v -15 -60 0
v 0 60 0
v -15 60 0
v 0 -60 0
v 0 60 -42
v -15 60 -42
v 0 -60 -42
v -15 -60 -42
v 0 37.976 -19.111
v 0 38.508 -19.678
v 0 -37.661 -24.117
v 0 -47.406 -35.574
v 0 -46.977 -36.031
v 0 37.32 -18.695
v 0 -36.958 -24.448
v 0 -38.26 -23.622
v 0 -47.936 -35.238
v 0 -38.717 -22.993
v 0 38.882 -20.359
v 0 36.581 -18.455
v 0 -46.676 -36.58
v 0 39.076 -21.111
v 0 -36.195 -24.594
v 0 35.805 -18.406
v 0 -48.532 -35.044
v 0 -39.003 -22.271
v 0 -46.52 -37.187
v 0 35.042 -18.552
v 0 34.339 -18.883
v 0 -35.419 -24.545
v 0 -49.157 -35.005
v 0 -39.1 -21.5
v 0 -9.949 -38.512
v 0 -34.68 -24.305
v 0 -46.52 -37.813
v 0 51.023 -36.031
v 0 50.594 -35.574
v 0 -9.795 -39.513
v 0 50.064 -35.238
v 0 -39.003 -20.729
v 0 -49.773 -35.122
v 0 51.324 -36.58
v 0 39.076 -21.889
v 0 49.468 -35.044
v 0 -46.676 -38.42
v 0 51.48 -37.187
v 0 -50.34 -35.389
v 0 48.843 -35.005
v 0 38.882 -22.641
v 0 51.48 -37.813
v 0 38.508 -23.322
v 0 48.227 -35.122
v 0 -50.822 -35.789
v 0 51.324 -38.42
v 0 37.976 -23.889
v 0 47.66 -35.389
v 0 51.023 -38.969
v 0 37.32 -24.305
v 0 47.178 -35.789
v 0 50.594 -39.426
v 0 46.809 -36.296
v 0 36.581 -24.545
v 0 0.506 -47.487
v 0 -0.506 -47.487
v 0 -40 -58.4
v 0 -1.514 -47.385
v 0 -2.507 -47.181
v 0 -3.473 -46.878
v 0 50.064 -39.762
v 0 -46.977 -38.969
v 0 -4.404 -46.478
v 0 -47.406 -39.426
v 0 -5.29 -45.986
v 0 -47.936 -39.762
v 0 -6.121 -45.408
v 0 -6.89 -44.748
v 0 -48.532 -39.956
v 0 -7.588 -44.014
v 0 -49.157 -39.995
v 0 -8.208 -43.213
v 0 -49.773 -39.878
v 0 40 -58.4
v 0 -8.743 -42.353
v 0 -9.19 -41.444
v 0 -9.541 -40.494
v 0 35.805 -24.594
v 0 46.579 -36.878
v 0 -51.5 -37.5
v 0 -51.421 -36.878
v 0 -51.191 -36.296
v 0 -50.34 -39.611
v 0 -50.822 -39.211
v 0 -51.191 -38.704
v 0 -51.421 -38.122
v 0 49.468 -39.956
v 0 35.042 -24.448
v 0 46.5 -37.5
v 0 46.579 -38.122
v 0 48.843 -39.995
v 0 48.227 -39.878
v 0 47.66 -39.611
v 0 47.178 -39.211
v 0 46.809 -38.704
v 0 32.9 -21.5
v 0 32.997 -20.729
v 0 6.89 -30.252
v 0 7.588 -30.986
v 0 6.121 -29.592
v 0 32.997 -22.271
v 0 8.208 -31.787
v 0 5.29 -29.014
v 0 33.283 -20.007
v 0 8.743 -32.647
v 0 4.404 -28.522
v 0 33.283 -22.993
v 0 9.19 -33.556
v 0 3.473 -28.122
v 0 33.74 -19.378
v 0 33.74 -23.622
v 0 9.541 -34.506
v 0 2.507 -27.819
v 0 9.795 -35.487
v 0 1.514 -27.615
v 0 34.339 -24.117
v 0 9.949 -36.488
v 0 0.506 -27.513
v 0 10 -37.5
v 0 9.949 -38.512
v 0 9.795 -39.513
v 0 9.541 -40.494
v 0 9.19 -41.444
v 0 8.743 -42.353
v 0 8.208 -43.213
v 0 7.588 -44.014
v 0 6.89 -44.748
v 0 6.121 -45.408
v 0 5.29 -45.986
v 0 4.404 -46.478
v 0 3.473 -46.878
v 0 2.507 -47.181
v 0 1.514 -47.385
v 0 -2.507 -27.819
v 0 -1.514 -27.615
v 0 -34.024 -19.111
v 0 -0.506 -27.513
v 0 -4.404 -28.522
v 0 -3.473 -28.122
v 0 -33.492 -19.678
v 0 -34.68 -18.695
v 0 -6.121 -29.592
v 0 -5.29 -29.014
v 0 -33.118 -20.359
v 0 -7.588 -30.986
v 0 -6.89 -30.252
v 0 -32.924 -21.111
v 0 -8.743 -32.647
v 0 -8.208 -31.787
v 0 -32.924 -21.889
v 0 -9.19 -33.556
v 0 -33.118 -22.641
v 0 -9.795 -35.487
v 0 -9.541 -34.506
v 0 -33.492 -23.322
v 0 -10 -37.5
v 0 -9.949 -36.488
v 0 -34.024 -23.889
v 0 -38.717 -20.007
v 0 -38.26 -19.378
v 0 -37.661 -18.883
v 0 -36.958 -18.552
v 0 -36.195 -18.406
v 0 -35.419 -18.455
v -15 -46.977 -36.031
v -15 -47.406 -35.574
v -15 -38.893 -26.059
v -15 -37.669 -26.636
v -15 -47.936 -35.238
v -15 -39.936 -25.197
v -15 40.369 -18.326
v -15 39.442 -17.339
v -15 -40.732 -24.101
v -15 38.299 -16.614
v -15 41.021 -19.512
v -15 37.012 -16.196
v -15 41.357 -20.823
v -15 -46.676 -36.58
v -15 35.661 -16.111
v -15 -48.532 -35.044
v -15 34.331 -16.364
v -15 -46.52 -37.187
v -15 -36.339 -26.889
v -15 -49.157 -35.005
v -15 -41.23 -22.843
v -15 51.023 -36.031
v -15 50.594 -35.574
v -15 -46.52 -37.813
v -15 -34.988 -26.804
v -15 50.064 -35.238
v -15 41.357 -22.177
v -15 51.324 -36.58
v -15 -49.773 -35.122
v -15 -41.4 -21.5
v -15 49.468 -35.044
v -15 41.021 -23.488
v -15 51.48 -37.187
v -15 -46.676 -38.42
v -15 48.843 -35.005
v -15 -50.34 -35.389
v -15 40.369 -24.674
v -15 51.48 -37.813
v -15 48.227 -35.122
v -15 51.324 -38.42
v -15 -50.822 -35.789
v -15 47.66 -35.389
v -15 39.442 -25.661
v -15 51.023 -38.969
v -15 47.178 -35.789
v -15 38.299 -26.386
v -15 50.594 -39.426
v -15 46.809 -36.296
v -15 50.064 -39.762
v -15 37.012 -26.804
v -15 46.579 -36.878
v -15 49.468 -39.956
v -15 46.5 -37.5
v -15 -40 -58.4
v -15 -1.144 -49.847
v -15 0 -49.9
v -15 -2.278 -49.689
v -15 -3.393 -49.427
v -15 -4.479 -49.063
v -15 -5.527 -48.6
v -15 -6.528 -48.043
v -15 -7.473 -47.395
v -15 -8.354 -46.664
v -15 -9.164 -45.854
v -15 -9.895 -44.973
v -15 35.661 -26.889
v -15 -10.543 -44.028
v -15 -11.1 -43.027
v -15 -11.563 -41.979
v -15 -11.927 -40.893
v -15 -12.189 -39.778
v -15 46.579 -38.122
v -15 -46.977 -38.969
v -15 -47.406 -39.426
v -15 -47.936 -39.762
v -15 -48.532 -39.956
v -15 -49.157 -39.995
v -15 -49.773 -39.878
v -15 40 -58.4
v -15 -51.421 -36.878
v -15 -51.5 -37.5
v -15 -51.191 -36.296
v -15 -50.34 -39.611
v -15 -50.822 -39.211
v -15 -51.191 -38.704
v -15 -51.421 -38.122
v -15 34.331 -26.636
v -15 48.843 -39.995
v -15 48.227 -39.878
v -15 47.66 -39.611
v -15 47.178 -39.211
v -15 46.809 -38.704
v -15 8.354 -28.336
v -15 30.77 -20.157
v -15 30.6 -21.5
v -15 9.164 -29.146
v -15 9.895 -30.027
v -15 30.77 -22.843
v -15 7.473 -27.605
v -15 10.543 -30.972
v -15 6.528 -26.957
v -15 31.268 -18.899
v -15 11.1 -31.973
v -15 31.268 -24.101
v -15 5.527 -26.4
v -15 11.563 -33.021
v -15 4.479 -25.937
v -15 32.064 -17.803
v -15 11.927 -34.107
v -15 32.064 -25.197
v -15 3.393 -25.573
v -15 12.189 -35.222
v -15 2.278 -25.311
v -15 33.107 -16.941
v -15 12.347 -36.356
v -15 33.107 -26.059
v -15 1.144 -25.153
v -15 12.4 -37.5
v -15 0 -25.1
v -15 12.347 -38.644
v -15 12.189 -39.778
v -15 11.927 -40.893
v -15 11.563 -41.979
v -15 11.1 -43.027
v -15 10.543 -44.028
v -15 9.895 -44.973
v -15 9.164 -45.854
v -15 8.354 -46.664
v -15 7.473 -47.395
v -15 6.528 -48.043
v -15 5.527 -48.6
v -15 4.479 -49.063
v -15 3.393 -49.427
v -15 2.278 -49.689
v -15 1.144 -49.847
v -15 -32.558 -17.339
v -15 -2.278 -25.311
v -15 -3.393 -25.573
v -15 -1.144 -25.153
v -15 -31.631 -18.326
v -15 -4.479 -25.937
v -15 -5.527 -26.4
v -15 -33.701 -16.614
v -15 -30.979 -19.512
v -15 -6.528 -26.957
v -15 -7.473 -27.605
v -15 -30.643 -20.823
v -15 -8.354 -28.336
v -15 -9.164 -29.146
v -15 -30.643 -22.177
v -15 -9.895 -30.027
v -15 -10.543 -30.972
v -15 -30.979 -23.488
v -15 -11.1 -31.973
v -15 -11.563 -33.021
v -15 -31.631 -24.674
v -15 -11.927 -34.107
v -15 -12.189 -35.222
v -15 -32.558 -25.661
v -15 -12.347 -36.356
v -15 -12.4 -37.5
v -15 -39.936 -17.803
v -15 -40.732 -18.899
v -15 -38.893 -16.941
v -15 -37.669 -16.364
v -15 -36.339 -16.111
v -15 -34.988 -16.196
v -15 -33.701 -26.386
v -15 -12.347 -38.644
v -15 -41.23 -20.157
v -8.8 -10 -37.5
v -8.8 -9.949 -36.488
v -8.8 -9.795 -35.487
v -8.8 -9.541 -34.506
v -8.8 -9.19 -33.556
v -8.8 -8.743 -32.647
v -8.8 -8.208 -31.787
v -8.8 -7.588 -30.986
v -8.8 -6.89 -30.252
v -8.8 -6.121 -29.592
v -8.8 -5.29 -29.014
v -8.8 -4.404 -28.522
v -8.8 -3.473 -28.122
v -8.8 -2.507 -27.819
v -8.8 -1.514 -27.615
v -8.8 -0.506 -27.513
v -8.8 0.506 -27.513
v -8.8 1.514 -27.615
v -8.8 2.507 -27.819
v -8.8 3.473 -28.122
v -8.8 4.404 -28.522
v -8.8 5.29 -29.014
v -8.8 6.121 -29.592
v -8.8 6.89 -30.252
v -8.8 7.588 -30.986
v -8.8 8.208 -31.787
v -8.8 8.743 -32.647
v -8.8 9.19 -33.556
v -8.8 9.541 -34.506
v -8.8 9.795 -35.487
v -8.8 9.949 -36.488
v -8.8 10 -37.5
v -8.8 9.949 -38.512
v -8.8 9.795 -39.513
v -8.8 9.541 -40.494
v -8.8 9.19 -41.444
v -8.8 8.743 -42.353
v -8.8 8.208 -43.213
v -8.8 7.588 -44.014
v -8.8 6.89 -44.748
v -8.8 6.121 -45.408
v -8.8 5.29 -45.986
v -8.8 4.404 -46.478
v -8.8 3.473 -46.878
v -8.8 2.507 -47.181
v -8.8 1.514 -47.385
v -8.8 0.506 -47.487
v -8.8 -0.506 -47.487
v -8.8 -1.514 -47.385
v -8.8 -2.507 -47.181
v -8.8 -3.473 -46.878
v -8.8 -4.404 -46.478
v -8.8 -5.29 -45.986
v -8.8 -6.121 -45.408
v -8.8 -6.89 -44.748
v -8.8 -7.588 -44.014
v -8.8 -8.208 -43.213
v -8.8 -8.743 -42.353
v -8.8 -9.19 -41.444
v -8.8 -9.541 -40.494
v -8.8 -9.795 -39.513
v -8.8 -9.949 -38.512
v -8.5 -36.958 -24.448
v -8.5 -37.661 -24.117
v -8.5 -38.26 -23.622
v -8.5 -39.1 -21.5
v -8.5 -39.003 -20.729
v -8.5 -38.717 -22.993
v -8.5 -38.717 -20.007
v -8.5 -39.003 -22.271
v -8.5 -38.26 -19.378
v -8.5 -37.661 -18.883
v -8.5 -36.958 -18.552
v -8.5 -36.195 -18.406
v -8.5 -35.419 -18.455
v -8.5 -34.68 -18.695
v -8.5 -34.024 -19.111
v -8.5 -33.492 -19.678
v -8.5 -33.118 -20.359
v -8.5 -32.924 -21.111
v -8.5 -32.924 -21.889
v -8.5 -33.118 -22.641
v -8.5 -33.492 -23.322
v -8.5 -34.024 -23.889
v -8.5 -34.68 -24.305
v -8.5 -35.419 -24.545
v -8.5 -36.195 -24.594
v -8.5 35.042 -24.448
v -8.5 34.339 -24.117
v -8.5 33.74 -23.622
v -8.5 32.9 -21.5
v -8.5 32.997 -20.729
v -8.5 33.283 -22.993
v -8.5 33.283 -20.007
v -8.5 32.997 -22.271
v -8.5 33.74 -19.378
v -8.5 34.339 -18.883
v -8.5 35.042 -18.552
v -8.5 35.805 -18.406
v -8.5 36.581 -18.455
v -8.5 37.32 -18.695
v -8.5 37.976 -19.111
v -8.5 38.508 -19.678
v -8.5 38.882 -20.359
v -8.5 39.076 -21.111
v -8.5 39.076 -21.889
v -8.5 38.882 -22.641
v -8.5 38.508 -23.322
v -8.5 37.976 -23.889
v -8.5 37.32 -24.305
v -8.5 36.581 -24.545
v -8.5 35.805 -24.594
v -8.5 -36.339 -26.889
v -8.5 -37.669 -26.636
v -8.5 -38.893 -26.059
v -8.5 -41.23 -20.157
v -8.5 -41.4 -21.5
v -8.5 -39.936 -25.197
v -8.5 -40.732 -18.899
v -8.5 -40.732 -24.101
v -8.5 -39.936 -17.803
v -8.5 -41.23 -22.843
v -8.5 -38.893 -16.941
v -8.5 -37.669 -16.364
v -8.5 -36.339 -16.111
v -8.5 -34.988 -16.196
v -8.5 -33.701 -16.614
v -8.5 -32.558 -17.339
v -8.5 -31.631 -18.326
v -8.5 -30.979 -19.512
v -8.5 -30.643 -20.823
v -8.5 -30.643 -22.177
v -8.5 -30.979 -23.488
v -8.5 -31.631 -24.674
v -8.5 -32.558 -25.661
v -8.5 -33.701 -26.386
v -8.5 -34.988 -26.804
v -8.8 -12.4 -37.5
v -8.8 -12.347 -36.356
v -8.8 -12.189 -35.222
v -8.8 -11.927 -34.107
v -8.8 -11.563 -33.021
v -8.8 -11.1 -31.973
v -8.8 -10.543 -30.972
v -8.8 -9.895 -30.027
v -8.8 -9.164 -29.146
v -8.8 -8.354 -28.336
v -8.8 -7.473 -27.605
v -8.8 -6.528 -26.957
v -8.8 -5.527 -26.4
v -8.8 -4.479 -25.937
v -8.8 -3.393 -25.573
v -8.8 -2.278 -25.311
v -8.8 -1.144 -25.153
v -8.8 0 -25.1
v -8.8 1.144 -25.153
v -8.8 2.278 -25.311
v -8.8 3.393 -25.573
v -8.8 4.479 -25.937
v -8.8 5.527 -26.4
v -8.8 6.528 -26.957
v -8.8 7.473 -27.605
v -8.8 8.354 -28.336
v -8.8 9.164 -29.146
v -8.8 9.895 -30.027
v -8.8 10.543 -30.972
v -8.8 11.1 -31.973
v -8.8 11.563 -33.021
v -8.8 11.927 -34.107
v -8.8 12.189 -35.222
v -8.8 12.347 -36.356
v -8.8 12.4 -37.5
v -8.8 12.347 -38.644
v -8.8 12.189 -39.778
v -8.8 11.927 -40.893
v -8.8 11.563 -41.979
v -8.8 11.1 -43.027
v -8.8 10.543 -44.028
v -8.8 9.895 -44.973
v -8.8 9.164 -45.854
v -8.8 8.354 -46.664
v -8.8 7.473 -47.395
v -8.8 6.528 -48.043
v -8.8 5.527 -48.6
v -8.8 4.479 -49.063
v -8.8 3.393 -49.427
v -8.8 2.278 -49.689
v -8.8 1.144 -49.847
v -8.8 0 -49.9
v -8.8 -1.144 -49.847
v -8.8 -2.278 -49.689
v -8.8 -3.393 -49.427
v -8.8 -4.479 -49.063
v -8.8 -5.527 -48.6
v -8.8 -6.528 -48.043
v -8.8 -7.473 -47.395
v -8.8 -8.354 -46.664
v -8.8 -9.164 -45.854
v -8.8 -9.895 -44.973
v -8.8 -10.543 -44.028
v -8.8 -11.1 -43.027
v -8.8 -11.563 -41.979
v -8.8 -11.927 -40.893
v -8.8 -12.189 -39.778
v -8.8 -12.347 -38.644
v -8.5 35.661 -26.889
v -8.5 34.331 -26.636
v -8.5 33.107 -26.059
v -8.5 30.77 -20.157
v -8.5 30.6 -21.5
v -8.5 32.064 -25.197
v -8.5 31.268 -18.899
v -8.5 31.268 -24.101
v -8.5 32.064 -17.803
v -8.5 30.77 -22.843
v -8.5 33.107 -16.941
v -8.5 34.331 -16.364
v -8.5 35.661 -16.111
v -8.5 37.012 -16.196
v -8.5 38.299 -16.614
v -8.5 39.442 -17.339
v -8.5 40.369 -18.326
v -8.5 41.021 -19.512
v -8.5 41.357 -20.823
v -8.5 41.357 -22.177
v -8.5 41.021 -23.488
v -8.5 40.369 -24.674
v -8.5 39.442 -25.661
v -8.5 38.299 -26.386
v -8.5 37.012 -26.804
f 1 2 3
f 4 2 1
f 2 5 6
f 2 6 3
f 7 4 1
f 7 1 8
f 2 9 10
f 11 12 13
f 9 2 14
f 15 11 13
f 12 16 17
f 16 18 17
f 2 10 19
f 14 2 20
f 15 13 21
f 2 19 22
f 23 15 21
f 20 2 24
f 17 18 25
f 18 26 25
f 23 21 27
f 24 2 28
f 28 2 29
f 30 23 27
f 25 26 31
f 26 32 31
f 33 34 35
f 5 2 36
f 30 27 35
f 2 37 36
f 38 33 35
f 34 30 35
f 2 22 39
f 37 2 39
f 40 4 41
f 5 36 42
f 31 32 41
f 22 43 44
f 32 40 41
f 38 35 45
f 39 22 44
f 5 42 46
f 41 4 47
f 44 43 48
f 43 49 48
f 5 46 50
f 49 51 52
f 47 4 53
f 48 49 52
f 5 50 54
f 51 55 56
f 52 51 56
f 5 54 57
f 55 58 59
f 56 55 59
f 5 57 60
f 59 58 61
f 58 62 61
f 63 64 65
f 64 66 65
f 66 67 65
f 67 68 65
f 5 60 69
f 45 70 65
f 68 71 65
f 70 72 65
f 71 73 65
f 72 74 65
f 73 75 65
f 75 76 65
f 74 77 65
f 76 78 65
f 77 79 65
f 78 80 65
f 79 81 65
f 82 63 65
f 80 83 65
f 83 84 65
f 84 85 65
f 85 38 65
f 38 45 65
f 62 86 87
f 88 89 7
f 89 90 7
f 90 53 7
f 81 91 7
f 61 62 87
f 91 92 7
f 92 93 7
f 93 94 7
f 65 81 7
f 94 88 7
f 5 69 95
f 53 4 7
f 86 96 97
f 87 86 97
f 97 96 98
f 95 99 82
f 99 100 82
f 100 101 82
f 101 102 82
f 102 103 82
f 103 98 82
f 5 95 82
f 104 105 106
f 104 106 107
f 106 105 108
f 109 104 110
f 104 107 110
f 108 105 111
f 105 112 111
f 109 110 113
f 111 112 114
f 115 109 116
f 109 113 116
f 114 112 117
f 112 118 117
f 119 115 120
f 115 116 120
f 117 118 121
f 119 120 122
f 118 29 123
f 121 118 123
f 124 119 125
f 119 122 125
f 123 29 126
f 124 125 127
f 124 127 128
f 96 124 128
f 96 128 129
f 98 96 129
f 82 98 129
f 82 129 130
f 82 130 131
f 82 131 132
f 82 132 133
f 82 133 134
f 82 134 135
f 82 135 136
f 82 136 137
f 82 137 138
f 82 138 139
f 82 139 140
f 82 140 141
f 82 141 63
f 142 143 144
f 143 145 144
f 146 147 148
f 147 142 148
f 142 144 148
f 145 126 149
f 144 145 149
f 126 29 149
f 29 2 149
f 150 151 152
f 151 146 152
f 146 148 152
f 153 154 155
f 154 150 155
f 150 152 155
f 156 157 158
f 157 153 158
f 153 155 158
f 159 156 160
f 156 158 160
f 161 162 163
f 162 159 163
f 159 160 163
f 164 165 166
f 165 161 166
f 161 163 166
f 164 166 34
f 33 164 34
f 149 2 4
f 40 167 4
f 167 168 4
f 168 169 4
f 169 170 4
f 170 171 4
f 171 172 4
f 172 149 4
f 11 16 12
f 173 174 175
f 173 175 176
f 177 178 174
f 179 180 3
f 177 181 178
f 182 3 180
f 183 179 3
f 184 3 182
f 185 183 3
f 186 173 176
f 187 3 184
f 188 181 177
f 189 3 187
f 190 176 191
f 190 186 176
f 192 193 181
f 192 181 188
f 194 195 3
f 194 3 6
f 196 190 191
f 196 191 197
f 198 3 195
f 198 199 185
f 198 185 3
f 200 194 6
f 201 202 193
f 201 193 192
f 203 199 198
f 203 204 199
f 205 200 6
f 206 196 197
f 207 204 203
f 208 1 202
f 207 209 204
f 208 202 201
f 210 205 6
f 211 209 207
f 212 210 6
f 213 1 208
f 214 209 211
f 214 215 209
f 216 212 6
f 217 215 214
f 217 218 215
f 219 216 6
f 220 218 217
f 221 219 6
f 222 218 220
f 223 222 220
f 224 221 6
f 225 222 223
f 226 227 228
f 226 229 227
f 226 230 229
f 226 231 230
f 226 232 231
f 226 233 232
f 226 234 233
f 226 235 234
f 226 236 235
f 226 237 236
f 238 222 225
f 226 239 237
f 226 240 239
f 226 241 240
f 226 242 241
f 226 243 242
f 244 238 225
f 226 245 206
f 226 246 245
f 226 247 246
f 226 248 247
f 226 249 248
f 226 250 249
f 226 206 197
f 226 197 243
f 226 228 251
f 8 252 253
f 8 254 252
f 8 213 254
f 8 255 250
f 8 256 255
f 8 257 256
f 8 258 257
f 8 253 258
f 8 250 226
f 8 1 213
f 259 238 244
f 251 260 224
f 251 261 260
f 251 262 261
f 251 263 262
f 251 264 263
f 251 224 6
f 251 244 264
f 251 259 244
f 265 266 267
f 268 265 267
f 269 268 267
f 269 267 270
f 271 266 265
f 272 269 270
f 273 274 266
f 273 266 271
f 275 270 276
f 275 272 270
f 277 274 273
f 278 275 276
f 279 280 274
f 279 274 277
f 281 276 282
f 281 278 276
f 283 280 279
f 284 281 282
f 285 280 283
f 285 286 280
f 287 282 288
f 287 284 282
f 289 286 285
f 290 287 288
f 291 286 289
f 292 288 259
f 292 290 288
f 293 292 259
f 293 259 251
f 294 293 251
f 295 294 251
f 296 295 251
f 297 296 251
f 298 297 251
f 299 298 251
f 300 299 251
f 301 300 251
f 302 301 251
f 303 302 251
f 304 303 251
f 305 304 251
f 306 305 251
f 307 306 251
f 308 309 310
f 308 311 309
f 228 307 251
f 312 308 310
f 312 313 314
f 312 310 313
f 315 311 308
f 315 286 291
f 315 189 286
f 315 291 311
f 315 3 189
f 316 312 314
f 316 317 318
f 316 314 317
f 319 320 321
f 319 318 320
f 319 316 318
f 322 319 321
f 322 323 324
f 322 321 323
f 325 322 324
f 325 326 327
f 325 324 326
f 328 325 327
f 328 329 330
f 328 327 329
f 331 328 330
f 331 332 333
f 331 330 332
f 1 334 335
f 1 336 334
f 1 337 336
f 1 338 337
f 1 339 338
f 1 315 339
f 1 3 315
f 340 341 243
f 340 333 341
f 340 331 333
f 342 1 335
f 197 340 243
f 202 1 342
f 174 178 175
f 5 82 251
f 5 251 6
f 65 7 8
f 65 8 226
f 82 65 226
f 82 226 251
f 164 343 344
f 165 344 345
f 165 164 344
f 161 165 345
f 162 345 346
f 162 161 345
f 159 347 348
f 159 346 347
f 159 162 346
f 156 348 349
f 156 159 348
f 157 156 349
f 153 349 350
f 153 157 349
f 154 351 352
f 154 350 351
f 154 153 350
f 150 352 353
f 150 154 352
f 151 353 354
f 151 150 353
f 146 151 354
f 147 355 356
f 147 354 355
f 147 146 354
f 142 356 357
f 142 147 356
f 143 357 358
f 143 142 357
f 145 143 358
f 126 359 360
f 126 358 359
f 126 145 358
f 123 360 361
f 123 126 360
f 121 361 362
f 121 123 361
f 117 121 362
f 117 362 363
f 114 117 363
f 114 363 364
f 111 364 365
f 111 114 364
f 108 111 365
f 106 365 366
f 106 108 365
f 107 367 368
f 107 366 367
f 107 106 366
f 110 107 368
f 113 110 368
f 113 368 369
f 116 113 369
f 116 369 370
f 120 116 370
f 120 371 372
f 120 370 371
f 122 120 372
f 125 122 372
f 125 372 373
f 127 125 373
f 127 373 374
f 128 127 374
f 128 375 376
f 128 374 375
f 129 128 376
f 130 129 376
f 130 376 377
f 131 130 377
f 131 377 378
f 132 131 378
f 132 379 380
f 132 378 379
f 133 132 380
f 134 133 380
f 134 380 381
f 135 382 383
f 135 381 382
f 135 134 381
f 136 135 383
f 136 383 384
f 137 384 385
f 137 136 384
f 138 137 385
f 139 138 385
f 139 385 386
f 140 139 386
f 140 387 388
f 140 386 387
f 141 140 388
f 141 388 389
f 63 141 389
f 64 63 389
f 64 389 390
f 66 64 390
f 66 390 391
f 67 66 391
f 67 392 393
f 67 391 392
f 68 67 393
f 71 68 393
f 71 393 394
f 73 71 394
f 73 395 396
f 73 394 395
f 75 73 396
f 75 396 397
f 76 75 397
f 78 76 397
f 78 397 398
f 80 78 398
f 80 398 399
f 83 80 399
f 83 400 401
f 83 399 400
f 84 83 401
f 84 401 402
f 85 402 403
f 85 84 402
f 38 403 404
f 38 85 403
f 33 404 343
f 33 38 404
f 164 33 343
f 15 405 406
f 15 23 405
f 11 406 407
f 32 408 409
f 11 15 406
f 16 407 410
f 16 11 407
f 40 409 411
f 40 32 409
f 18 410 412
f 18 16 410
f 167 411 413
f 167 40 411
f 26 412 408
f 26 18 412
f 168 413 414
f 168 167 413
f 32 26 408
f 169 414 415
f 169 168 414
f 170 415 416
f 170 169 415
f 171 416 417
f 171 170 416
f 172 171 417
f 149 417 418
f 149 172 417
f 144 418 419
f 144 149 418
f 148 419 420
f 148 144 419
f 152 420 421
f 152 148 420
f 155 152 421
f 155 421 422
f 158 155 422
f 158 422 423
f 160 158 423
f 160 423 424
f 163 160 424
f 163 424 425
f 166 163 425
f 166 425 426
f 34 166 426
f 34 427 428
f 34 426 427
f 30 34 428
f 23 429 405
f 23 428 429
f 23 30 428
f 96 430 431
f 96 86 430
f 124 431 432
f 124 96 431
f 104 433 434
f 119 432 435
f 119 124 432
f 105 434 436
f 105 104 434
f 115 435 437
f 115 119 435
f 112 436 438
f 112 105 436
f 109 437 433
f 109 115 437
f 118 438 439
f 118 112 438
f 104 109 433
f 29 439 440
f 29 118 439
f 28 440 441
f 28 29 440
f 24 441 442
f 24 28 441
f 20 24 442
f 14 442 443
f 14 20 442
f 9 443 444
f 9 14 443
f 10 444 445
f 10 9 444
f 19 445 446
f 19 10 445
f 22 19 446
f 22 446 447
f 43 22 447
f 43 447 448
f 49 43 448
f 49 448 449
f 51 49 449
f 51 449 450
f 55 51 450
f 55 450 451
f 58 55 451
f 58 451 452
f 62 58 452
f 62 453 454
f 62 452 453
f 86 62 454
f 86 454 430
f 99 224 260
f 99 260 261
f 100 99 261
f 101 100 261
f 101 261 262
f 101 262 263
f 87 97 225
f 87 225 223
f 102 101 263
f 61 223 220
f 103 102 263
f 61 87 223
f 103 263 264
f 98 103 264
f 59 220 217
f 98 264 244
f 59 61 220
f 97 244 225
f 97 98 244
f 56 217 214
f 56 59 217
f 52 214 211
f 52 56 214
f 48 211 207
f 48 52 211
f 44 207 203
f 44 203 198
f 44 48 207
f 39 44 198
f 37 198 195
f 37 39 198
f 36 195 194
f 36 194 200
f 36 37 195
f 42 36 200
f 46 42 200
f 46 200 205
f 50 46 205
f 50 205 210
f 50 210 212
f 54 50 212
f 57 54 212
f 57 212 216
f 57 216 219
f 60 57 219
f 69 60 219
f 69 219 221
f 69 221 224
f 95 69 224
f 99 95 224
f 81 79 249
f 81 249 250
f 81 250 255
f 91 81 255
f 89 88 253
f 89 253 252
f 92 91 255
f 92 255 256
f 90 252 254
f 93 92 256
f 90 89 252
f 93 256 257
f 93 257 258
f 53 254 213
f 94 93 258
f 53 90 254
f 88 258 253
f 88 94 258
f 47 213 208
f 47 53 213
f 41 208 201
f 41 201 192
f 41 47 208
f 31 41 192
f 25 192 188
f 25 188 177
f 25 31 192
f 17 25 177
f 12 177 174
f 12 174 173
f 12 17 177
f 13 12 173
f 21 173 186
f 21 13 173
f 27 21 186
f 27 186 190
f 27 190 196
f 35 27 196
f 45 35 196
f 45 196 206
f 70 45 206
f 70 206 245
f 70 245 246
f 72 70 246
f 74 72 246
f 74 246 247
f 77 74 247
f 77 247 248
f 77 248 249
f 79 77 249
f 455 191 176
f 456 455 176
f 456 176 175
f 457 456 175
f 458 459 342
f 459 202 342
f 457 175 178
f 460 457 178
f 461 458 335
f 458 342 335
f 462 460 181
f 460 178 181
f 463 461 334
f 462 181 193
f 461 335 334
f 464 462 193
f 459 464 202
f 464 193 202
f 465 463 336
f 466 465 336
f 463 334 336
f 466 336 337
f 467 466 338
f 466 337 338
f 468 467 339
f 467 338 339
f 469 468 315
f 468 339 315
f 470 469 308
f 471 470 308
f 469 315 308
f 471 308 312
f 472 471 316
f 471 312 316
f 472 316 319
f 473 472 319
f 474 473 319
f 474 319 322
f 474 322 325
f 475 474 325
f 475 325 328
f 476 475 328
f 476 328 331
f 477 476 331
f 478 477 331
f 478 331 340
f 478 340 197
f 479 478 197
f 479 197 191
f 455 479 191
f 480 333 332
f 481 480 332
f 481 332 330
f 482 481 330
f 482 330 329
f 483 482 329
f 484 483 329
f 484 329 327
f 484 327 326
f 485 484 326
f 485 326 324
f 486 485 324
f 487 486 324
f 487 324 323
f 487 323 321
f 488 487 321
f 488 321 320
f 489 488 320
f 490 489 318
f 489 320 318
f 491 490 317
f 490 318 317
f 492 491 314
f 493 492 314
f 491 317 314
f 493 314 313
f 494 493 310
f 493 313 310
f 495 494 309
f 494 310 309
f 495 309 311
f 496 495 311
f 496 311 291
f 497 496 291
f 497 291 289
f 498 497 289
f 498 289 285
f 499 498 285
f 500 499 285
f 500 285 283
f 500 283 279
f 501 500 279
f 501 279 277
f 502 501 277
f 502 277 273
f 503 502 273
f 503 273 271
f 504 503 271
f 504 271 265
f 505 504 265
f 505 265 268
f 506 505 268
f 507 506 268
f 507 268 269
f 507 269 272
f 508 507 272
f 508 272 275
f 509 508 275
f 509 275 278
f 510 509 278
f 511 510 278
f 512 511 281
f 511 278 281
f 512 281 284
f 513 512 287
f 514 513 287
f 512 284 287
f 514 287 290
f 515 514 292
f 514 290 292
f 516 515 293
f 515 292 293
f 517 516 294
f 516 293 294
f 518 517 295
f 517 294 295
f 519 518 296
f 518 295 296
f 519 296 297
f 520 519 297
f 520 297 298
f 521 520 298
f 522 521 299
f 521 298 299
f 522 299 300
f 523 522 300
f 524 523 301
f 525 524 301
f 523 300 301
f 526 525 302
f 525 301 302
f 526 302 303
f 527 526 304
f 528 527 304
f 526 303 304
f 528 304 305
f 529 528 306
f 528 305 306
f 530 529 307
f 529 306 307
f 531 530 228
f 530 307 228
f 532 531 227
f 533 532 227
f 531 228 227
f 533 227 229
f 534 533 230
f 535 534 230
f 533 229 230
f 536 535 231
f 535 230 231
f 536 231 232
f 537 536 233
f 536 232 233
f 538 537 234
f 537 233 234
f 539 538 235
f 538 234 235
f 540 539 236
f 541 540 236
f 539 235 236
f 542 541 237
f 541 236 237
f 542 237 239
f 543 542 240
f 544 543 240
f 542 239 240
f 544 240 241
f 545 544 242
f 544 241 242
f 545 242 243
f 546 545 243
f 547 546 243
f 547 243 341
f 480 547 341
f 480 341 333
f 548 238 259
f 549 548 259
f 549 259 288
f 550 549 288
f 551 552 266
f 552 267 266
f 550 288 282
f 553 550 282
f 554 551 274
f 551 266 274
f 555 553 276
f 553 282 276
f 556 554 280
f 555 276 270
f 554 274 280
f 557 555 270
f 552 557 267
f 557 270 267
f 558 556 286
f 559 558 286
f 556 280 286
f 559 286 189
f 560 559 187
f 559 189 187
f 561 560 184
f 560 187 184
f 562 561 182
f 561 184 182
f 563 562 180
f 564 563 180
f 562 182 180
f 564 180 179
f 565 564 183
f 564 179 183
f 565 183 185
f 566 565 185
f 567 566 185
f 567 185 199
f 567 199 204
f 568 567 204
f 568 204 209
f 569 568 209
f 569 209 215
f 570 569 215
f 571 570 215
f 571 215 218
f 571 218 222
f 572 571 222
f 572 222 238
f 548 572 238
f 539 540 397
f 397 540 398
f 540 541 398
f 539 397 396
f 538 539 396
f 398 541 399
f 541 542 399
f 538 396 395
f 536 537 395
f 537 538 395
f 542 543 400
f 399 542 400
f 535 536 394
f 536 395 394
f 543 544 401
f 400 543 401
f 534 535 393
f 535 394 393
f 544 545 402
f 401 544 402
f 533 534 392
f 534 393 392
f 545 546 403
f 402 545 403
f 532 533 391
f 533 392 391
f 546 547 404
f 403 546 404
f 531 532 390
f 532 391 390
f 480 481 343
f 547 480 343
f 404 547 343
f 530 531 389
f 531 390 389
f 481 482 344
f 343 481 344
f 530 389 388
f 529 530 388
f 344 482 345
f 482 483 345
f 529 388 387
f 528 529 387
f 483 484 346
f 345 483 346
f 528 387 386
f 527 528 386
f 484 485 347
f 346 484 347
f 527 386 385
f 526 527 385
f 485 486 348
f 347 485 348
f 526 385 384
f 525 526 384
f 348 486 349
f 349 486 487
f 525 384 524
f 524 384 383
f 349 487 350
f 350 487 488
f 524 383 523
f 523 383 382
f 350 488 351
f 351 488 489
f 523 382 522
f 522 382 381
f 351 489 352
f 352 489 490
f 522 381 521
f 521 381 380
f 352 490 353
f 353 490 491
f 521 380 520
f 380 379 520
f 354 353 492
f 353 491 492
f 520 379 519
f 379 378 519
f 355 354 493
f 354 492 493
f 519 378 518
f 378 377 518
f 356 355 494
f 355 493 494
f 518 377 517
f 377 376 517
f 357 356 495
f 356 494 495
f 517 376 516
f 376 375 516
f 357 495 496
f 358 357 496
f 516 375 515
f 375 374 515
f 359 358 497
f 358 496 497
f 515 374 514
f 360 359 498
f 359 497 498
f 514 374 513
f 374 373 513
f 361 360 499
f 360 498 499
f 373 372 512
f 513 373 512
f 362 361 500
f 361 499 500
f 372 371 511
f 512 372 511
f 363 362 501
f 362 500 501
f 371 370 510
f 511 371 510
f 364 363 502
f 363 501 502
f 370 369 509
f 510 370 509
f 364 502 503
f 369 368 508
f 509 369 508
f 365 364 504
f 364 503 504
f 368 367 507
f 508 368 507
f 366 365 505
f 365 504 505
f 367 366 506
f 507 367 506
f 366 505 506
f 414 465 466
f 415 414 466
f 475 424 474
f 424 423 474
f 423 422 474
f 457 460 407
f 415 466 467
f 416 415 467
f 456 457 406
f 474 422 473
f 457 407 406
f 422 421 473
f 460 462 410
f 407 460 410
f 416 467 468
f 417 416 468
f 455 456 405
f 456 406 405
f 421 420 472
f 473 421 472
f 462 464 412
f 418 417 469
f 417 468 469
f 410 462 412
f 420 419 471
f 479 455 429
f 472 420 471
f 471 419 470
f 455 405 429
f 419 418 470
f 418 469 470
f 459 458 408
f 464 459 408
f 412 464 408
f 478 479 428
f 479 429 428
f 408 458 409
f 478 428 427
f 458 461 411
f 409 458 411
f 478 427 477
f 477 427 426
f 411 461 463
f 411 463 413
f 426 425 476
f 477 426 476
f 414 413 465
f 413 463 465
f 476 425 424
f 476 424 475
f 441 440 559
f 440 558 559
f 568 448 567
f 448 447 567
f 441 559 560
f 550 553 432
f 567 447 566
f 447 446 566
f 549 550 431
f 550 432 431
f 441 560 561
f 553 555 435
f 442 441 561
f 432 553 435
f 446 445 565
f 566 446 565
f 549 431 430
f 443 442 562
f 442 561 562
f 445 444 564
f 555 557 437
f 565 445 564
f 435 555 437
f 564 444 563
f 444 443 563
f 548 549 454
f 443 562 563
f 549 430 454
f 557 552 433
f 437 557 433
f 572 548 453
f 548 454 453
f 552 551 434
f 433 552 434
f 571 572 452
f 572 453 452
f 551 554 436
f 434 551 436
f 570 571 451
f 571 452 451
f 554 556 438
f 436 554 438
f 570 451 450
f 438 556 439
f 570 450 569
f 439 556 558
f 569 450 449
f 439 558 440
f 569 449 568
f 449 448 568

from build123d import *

# Parameters (mm, degrees)
SKETCH_R        = 10
SKETCH_R_2      = 3.1
SKETCH_R_3      = 2.5
PAD_DEPTH       = 15
SKETCH001_R     = 5.4
POCKET_DEPTH    = 6.5
SKETCH002_R     = 12.4
POCKET001_DEPTH = 6.2


with BuildPart() as part:
    # Sketch → Pad (new body)
    with BuildSketch(Plane(origin=(0, 0, 0), x_dir=(0, -1, 0), z_dir=(-1, 0, 0))):
        Polygon((-60, 0), (60, 0), (60, -42), (40, -58.4), (-40, -58.4), (-60, -42), align=None)
        with Locations((0, -37.5)):
            Circle(SKETCH_R, mode=Mode.SUBTRACT)
        with Locations((-36, -21.5)):
            Circle(SKETCH_R_2, mode=Mode.SUBTRACT)
        with Locations((36, -21.5)):
            Circle(SKETCH_R_2, mode=Mode.SUBTRACT)
        with Locations((49, -37.5)):
            Circle(SKETCH_R_3, mode=Mode.SUBTRACT)
        with Locations((-49, -37.5)):
            Circle(SKETCH_R_3, mode=Mode.SUBTRACT)
    extrude(amount=PAD_DEPTH)

    # Sketch001 → Pocket (cut)
    with BuildSketch(Plane(origin=(-15, 0, 0), x_dir=(0, -1, 0), z_dir=(-1, 0, 0))):
        with Locations((-36, -21.5)):
            Circle(SKETCH001_R)
        with Locations((36, -21.5)):
            Circle(SKETCH001_R)
    extrude(amount=-POCKET_DEPTH, mode=Mode.SUBTRACT)

    # Sketch002 → Pocket001 (cut)
    with BuildSketch(Plane(origin=(-15, 0, 0), x_dir=(0, -1, 0), z_dir=(-1, 0, 0))):
        with Locations((0, -37.5)):
            Circle(SKETCH002_R)
    extrude(amount=-POCKET001_DEPTH, mode=Mode.SUBTRACT)


solid = part.part
